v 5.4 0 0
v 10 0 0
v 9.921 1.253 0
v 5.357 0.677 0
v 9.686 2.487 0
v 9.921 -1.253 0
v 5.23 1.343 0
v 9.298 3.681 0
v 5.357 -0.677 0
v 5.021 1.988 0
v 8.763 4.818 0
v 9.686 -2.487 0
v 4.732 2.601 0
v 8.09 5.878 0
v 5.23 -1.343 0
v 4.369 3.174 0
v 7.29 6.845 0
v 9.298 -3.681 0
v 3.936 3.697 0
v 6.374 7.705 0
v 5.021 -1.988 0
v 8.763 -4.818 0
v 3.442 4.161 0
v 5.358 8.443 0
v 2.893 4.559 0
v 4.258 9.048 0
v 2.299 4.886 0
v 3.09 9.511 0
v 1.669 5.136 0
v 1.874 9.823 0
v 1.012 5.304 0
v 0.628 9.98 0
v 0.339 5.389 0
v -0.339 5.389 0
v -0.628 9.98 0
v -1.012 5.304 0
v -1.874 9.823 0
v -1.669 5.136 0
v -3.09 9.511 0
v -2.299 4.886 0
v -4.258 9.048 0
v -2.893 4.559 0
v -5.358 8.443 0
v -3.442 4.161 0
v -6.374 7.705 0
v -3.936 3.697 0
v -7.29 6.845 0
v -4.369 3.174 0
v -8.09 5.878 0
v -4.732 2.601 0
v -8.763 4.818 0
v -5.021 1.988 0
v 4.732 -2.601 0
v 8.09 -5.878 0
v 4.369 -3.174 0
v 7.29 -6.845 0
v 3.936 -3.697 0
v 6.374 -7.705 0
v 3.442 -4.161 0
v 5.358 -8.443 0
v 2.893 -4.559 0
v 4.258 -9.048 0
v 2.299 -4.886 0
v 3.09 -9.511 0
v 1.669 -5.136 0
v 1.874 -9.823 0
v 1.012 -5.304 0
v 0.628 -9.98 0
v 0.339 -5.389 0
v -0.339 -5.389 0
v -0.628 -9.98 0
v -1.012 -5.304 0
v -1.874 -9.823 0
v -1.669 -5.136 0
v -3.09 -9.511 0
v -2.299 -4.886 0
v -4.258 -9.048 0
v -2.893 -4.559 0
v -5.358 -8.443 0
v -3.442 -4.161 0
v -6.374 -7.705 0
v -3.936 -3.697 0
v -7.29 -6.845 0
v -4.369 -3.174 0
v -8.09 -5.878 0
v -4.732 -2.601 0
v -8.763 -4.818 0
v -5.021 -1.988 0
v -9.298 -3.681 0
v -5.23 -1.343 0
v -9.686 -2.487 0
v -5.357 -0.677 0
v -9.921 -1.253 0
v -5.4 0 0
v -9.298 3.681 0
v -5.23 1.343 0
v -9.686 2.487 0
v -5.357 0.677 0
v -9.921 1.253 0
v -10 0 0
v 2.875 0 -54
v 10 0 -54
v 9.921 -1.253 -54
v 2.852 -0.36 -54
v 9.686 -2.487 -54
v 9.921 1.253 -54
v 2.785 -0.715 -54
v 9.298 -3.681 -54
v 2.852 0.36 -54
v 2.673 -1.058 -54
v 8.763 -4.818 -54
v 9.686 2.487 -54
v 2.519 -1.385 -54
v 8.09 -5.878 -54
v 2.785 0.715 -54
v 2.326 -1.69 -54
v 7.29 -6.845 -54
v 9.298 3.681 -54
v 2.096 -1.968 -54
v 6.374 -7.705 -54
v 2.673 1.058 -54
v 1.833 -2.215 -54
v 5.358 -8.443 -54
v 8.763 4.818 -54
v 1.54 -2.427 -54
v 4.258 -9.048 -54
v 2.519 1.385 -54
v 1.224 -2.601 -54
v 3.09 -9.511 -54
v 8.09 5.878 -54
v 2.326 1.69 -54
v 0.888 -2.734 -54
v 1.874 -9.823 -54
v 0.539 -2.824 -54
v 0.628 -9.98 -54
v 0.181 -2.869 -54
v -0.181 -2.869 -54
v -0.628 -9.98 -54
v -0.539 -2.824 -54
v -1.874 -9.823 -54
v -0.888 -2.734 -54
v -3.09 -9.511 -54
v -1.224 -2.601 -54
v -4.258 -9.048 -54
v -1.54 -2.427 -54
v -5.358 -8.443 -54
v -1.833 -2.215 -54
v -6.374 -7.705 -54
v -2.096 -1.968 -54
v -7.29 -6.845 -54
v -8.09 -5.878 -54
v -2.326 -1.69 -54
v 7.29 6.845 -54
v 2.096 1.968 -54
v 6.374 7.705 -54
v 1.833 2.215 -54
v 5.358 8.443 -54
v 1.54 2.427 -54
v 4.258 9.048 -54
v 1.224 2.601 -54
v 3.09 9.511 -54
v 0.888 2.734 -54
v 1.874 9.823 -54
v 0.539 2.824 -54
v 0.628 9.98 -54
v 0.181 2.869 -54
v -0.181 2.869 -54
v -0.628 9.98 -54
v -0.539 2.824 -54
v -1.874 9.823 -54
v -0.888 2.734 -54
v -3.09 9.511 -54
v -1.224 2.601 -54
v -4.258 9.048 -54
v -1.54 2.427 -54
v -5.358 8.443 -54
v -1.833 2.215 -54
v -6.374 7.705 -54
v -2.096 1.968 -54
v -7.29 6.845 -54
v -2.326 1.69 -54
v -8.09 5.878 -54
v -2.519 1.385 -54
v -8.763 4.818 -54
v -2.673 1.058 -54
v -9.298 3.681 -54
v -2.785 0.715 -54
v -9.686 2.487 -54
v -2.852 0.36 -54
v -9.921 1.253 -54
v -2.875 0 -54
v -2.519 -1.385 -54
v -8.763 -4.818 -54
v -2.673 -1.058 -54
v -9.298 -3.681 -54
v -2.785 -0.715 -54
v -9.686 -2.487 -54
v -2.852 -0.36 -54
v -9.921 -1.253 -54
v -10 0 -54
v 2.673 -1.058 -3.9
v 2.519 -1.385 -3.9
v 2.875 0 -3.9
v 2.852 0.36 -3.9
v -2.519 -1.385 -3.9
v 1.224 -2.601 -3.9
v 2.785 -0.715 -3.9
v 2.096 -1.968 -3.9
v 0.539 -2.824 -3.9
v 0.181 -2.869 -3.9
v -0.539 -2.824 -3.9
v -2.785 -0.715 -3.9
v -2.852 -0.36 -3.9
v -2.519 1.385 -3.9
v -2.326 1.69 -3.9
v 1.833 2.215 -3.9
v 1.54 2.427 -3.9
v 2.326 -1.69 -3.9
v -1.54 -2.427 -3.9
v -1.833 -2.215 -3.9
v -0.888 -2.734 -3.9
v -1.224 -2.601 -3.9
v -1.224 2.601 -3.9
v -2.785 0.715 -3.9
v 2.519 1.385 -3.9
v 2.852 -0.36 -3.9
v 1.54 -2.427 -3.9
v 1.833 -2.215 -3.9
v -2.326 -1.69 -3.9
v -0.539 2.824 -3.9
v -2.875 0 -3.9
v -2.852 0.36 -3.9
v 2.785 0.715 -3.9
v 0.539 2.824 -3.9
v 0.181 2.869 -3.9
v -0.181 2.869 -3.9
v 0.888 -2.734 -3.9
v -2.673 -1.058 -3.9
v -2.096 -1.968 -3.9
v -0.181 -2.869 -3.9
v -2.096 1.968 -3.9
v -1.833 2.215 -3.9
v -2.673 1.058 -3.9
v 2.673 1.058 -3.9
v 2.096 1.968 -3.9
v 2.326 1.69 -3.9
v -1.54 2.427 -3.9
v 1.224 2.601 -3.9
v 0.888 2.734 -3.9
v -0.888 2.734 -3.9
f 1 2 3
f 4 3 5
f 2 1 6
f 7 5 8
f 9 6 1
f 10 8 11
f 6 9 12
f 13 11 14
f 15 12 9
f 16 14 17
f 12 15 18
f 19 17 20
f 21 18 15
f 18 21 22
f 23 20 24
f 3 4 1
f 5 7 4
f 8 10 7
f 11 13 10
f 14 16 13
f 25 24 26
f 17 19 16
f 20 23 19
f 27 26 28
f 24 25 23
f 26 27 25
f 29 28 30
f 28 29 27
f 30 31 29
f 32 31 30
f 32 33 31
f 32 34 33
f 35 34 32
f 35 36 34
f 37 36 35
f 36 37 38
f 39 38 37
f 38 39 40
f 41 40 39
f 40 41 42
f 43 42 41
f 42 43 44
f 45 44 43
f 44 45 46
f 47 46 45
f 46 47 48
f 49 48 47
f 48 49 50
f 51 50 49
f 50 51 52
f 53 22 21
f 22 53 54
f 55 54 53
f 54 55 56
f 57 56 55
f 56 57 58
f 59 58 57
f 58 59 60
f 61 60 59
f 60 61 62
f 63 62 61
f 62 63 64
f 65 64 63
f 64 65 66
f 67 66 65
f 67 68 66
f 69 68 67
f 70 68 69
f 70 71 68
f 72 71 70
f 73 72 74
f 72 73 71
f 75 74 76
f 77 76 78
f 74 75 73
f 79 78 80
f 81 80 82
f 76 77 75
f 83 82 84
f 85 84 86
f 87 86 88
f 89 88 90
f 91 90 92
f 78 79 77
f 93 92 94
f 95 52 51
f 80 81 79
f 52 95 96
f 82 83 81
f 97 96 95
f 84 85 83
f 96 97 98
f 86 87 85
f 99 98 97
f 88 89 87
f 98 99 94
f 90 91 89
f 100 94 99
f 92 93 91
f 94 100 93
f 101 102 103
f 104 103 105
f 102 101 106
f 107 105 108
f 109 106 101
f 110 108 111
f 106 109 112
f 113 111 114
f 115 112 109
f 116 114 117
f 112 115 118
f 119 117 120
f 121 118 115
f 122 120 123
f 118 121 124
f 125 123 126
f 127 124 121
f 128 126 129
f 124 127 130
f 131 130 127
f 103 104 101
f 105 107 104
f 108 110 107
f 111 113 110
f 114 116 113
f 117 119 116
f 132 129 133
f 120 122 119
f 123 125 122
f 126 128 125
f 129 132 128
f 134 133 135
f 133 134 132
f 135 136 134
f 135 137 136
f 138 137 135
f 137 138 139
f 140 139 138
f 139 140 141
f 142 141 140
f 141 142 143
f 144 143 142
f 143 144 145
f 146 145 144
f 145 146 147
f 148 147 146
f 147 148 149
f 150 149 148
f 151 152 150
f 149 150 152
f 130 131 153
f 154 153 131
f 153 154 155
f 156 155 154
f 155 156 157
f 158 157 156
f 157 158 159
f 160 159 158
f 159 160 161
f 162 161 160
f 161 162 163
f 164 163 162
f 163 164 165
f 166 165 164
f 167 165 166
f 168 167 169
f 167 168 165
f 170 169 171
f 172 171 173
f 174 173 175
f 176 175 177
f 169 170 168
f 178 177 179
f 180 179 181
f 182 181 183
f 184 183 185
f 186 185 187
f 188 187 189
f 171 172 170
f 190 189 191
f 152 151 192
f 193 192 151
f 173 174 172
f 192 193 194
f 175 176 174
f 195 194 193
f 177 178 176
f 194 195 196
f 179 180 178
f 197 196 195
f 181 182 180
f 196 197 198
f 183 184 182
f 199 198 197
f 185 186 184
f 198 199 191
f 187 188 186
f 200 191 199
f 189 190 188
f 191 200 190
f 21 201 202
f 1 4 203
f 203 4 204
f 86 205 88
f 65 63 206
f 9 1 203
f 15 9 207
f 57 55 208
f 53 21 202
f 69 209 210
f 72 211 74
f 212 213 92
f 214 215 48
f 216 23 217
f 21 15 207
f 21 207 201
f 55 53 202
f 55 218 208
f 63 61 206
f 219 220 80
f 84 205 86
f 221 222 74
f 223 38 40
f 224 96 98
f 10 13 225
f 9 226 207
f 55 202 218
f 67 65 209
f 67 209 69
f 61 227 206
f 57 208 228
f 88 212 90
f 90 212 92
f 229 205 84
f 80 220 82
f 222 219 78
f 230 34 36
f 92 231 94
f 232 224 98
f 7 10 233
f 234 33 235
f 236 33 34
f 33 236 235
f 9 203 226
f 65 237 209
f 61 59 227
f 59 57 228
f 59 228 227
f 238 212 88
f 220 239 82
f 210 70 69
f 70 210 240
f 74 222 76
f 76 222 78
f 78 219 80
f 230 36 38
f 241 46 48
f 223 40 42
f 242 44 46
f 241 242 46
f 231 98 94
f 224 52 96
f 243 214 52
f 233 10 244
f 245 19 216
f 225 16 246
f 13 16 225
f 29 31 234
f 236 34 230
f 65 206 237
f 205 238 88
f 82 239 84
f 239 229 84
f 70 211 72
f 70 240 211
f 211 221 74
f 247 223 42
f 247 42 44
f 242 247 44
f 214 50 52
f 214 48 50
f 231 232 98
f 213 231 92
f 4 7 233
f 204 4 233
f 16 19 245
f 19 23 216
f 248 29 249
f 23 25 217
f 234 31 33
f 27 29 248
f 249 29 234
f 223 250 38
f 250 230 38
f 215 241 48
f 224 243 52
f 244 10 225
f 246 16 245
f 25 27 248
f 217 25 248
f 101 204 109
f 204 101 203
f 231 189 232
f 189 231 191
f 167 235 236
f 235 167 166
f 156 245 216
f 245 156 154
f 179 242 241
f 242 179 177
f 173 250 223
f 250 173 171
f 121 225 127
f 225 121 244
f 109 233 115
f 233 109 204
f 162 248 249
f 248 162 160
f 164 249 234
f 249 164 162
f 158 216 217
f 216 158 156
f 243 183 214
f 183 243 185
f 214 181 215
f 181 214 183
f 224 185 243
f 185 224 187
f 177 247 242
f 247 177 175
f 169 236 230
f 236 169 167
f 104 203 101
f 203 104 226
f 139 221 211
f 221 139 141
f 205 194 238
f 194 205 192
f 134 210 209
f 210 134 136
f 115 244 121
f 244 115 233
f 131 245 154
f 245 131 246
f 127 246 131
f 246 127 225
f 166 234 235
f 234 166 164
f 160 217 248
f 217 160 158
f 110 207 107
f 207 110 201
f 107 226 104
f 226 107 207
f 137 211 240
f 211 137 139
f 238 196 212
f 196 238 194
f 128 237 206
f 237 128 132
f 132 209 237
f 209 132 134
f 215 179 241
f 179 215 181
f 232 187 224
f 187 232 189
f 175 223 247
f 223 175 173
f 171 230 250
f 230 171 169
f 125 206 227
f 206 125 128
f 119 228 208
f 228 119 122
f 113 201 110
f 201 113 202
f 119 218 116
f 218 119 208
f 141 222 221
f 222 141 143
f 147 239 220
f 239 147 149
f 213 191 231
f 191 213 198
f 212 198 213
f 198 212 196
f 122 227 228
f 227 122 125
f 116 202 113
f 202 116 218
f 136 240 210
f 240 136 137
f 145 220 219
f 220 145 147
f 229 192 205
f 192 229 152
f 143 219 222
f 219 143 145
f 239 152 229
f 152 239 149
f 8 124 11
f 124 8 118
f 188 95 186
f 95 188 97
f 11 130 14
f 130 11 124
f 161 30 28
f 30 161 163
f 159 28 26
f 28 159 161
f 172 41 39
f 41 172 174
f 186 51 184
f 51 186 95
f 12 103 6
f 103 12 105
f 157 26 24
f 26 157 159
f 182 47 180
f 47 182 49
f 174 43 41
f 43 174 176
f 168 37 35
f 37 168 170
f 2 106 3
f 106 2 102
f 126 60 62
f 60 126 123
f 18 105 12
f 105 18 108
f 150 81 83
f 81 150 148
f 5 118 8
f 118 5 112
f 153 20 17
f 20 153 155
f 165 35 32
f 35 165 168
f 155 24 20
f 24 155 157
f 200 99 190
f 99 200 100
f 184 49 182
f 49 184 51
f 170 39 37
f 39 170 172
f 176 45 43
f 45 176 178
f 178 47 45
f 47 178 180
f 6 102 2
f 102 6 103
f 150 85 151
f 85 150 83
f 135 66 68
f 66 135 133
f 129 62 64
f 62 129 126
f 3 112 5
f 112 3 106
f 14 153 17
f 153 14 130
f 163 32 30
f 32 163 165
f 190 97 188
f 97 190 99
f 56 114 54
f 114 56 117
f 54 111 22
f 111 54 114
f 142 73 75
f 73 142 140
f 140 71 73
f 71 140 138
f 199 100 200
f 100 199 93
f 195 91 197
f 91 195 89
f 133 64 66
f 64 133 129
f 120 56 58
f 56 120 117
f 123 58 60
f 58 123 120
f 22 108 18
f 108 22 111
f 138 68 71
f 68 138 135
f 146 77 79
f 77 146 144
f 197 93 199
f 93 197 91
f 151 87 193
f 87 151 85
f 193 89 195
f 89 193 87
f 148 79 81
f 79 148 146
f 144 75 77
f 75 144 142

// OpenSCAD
$fn = 50;


difference() {
	union() {
		translate(v = [0, 0, -54.0000000000]) {
			cylinder(h = 54, r = 10.0000000000);
		}
		cylinder(h = 0, r = 20.0000000000);
	}
	union() {
		translate(v = [0, 0, 0]) {
			rotate(a = [0, 0, 0]) {
				difference() {
					union() {
						#translate(v = [0, 0, -54.0000000000]) {
							cylinder(h = 54, r = 2.6000000000);
						}
						#translate(v = [0, 0, -3.9000000000]) {
							cylinder(h = 3.9000000000, r1 = 2.8750000000, r2 = 5.4000000000);
						}
						#translate(v = [0, 0, -54.0000000000]) {
							cylinder(h = 54, r = 2.8750000000);
						}
						#translate(v = [0, 0, -54.0000000000]) {
							cylinder(h = 54, r = 2.6000000000);
						}
					}
					union();
				}
			}
		}
	}
}
